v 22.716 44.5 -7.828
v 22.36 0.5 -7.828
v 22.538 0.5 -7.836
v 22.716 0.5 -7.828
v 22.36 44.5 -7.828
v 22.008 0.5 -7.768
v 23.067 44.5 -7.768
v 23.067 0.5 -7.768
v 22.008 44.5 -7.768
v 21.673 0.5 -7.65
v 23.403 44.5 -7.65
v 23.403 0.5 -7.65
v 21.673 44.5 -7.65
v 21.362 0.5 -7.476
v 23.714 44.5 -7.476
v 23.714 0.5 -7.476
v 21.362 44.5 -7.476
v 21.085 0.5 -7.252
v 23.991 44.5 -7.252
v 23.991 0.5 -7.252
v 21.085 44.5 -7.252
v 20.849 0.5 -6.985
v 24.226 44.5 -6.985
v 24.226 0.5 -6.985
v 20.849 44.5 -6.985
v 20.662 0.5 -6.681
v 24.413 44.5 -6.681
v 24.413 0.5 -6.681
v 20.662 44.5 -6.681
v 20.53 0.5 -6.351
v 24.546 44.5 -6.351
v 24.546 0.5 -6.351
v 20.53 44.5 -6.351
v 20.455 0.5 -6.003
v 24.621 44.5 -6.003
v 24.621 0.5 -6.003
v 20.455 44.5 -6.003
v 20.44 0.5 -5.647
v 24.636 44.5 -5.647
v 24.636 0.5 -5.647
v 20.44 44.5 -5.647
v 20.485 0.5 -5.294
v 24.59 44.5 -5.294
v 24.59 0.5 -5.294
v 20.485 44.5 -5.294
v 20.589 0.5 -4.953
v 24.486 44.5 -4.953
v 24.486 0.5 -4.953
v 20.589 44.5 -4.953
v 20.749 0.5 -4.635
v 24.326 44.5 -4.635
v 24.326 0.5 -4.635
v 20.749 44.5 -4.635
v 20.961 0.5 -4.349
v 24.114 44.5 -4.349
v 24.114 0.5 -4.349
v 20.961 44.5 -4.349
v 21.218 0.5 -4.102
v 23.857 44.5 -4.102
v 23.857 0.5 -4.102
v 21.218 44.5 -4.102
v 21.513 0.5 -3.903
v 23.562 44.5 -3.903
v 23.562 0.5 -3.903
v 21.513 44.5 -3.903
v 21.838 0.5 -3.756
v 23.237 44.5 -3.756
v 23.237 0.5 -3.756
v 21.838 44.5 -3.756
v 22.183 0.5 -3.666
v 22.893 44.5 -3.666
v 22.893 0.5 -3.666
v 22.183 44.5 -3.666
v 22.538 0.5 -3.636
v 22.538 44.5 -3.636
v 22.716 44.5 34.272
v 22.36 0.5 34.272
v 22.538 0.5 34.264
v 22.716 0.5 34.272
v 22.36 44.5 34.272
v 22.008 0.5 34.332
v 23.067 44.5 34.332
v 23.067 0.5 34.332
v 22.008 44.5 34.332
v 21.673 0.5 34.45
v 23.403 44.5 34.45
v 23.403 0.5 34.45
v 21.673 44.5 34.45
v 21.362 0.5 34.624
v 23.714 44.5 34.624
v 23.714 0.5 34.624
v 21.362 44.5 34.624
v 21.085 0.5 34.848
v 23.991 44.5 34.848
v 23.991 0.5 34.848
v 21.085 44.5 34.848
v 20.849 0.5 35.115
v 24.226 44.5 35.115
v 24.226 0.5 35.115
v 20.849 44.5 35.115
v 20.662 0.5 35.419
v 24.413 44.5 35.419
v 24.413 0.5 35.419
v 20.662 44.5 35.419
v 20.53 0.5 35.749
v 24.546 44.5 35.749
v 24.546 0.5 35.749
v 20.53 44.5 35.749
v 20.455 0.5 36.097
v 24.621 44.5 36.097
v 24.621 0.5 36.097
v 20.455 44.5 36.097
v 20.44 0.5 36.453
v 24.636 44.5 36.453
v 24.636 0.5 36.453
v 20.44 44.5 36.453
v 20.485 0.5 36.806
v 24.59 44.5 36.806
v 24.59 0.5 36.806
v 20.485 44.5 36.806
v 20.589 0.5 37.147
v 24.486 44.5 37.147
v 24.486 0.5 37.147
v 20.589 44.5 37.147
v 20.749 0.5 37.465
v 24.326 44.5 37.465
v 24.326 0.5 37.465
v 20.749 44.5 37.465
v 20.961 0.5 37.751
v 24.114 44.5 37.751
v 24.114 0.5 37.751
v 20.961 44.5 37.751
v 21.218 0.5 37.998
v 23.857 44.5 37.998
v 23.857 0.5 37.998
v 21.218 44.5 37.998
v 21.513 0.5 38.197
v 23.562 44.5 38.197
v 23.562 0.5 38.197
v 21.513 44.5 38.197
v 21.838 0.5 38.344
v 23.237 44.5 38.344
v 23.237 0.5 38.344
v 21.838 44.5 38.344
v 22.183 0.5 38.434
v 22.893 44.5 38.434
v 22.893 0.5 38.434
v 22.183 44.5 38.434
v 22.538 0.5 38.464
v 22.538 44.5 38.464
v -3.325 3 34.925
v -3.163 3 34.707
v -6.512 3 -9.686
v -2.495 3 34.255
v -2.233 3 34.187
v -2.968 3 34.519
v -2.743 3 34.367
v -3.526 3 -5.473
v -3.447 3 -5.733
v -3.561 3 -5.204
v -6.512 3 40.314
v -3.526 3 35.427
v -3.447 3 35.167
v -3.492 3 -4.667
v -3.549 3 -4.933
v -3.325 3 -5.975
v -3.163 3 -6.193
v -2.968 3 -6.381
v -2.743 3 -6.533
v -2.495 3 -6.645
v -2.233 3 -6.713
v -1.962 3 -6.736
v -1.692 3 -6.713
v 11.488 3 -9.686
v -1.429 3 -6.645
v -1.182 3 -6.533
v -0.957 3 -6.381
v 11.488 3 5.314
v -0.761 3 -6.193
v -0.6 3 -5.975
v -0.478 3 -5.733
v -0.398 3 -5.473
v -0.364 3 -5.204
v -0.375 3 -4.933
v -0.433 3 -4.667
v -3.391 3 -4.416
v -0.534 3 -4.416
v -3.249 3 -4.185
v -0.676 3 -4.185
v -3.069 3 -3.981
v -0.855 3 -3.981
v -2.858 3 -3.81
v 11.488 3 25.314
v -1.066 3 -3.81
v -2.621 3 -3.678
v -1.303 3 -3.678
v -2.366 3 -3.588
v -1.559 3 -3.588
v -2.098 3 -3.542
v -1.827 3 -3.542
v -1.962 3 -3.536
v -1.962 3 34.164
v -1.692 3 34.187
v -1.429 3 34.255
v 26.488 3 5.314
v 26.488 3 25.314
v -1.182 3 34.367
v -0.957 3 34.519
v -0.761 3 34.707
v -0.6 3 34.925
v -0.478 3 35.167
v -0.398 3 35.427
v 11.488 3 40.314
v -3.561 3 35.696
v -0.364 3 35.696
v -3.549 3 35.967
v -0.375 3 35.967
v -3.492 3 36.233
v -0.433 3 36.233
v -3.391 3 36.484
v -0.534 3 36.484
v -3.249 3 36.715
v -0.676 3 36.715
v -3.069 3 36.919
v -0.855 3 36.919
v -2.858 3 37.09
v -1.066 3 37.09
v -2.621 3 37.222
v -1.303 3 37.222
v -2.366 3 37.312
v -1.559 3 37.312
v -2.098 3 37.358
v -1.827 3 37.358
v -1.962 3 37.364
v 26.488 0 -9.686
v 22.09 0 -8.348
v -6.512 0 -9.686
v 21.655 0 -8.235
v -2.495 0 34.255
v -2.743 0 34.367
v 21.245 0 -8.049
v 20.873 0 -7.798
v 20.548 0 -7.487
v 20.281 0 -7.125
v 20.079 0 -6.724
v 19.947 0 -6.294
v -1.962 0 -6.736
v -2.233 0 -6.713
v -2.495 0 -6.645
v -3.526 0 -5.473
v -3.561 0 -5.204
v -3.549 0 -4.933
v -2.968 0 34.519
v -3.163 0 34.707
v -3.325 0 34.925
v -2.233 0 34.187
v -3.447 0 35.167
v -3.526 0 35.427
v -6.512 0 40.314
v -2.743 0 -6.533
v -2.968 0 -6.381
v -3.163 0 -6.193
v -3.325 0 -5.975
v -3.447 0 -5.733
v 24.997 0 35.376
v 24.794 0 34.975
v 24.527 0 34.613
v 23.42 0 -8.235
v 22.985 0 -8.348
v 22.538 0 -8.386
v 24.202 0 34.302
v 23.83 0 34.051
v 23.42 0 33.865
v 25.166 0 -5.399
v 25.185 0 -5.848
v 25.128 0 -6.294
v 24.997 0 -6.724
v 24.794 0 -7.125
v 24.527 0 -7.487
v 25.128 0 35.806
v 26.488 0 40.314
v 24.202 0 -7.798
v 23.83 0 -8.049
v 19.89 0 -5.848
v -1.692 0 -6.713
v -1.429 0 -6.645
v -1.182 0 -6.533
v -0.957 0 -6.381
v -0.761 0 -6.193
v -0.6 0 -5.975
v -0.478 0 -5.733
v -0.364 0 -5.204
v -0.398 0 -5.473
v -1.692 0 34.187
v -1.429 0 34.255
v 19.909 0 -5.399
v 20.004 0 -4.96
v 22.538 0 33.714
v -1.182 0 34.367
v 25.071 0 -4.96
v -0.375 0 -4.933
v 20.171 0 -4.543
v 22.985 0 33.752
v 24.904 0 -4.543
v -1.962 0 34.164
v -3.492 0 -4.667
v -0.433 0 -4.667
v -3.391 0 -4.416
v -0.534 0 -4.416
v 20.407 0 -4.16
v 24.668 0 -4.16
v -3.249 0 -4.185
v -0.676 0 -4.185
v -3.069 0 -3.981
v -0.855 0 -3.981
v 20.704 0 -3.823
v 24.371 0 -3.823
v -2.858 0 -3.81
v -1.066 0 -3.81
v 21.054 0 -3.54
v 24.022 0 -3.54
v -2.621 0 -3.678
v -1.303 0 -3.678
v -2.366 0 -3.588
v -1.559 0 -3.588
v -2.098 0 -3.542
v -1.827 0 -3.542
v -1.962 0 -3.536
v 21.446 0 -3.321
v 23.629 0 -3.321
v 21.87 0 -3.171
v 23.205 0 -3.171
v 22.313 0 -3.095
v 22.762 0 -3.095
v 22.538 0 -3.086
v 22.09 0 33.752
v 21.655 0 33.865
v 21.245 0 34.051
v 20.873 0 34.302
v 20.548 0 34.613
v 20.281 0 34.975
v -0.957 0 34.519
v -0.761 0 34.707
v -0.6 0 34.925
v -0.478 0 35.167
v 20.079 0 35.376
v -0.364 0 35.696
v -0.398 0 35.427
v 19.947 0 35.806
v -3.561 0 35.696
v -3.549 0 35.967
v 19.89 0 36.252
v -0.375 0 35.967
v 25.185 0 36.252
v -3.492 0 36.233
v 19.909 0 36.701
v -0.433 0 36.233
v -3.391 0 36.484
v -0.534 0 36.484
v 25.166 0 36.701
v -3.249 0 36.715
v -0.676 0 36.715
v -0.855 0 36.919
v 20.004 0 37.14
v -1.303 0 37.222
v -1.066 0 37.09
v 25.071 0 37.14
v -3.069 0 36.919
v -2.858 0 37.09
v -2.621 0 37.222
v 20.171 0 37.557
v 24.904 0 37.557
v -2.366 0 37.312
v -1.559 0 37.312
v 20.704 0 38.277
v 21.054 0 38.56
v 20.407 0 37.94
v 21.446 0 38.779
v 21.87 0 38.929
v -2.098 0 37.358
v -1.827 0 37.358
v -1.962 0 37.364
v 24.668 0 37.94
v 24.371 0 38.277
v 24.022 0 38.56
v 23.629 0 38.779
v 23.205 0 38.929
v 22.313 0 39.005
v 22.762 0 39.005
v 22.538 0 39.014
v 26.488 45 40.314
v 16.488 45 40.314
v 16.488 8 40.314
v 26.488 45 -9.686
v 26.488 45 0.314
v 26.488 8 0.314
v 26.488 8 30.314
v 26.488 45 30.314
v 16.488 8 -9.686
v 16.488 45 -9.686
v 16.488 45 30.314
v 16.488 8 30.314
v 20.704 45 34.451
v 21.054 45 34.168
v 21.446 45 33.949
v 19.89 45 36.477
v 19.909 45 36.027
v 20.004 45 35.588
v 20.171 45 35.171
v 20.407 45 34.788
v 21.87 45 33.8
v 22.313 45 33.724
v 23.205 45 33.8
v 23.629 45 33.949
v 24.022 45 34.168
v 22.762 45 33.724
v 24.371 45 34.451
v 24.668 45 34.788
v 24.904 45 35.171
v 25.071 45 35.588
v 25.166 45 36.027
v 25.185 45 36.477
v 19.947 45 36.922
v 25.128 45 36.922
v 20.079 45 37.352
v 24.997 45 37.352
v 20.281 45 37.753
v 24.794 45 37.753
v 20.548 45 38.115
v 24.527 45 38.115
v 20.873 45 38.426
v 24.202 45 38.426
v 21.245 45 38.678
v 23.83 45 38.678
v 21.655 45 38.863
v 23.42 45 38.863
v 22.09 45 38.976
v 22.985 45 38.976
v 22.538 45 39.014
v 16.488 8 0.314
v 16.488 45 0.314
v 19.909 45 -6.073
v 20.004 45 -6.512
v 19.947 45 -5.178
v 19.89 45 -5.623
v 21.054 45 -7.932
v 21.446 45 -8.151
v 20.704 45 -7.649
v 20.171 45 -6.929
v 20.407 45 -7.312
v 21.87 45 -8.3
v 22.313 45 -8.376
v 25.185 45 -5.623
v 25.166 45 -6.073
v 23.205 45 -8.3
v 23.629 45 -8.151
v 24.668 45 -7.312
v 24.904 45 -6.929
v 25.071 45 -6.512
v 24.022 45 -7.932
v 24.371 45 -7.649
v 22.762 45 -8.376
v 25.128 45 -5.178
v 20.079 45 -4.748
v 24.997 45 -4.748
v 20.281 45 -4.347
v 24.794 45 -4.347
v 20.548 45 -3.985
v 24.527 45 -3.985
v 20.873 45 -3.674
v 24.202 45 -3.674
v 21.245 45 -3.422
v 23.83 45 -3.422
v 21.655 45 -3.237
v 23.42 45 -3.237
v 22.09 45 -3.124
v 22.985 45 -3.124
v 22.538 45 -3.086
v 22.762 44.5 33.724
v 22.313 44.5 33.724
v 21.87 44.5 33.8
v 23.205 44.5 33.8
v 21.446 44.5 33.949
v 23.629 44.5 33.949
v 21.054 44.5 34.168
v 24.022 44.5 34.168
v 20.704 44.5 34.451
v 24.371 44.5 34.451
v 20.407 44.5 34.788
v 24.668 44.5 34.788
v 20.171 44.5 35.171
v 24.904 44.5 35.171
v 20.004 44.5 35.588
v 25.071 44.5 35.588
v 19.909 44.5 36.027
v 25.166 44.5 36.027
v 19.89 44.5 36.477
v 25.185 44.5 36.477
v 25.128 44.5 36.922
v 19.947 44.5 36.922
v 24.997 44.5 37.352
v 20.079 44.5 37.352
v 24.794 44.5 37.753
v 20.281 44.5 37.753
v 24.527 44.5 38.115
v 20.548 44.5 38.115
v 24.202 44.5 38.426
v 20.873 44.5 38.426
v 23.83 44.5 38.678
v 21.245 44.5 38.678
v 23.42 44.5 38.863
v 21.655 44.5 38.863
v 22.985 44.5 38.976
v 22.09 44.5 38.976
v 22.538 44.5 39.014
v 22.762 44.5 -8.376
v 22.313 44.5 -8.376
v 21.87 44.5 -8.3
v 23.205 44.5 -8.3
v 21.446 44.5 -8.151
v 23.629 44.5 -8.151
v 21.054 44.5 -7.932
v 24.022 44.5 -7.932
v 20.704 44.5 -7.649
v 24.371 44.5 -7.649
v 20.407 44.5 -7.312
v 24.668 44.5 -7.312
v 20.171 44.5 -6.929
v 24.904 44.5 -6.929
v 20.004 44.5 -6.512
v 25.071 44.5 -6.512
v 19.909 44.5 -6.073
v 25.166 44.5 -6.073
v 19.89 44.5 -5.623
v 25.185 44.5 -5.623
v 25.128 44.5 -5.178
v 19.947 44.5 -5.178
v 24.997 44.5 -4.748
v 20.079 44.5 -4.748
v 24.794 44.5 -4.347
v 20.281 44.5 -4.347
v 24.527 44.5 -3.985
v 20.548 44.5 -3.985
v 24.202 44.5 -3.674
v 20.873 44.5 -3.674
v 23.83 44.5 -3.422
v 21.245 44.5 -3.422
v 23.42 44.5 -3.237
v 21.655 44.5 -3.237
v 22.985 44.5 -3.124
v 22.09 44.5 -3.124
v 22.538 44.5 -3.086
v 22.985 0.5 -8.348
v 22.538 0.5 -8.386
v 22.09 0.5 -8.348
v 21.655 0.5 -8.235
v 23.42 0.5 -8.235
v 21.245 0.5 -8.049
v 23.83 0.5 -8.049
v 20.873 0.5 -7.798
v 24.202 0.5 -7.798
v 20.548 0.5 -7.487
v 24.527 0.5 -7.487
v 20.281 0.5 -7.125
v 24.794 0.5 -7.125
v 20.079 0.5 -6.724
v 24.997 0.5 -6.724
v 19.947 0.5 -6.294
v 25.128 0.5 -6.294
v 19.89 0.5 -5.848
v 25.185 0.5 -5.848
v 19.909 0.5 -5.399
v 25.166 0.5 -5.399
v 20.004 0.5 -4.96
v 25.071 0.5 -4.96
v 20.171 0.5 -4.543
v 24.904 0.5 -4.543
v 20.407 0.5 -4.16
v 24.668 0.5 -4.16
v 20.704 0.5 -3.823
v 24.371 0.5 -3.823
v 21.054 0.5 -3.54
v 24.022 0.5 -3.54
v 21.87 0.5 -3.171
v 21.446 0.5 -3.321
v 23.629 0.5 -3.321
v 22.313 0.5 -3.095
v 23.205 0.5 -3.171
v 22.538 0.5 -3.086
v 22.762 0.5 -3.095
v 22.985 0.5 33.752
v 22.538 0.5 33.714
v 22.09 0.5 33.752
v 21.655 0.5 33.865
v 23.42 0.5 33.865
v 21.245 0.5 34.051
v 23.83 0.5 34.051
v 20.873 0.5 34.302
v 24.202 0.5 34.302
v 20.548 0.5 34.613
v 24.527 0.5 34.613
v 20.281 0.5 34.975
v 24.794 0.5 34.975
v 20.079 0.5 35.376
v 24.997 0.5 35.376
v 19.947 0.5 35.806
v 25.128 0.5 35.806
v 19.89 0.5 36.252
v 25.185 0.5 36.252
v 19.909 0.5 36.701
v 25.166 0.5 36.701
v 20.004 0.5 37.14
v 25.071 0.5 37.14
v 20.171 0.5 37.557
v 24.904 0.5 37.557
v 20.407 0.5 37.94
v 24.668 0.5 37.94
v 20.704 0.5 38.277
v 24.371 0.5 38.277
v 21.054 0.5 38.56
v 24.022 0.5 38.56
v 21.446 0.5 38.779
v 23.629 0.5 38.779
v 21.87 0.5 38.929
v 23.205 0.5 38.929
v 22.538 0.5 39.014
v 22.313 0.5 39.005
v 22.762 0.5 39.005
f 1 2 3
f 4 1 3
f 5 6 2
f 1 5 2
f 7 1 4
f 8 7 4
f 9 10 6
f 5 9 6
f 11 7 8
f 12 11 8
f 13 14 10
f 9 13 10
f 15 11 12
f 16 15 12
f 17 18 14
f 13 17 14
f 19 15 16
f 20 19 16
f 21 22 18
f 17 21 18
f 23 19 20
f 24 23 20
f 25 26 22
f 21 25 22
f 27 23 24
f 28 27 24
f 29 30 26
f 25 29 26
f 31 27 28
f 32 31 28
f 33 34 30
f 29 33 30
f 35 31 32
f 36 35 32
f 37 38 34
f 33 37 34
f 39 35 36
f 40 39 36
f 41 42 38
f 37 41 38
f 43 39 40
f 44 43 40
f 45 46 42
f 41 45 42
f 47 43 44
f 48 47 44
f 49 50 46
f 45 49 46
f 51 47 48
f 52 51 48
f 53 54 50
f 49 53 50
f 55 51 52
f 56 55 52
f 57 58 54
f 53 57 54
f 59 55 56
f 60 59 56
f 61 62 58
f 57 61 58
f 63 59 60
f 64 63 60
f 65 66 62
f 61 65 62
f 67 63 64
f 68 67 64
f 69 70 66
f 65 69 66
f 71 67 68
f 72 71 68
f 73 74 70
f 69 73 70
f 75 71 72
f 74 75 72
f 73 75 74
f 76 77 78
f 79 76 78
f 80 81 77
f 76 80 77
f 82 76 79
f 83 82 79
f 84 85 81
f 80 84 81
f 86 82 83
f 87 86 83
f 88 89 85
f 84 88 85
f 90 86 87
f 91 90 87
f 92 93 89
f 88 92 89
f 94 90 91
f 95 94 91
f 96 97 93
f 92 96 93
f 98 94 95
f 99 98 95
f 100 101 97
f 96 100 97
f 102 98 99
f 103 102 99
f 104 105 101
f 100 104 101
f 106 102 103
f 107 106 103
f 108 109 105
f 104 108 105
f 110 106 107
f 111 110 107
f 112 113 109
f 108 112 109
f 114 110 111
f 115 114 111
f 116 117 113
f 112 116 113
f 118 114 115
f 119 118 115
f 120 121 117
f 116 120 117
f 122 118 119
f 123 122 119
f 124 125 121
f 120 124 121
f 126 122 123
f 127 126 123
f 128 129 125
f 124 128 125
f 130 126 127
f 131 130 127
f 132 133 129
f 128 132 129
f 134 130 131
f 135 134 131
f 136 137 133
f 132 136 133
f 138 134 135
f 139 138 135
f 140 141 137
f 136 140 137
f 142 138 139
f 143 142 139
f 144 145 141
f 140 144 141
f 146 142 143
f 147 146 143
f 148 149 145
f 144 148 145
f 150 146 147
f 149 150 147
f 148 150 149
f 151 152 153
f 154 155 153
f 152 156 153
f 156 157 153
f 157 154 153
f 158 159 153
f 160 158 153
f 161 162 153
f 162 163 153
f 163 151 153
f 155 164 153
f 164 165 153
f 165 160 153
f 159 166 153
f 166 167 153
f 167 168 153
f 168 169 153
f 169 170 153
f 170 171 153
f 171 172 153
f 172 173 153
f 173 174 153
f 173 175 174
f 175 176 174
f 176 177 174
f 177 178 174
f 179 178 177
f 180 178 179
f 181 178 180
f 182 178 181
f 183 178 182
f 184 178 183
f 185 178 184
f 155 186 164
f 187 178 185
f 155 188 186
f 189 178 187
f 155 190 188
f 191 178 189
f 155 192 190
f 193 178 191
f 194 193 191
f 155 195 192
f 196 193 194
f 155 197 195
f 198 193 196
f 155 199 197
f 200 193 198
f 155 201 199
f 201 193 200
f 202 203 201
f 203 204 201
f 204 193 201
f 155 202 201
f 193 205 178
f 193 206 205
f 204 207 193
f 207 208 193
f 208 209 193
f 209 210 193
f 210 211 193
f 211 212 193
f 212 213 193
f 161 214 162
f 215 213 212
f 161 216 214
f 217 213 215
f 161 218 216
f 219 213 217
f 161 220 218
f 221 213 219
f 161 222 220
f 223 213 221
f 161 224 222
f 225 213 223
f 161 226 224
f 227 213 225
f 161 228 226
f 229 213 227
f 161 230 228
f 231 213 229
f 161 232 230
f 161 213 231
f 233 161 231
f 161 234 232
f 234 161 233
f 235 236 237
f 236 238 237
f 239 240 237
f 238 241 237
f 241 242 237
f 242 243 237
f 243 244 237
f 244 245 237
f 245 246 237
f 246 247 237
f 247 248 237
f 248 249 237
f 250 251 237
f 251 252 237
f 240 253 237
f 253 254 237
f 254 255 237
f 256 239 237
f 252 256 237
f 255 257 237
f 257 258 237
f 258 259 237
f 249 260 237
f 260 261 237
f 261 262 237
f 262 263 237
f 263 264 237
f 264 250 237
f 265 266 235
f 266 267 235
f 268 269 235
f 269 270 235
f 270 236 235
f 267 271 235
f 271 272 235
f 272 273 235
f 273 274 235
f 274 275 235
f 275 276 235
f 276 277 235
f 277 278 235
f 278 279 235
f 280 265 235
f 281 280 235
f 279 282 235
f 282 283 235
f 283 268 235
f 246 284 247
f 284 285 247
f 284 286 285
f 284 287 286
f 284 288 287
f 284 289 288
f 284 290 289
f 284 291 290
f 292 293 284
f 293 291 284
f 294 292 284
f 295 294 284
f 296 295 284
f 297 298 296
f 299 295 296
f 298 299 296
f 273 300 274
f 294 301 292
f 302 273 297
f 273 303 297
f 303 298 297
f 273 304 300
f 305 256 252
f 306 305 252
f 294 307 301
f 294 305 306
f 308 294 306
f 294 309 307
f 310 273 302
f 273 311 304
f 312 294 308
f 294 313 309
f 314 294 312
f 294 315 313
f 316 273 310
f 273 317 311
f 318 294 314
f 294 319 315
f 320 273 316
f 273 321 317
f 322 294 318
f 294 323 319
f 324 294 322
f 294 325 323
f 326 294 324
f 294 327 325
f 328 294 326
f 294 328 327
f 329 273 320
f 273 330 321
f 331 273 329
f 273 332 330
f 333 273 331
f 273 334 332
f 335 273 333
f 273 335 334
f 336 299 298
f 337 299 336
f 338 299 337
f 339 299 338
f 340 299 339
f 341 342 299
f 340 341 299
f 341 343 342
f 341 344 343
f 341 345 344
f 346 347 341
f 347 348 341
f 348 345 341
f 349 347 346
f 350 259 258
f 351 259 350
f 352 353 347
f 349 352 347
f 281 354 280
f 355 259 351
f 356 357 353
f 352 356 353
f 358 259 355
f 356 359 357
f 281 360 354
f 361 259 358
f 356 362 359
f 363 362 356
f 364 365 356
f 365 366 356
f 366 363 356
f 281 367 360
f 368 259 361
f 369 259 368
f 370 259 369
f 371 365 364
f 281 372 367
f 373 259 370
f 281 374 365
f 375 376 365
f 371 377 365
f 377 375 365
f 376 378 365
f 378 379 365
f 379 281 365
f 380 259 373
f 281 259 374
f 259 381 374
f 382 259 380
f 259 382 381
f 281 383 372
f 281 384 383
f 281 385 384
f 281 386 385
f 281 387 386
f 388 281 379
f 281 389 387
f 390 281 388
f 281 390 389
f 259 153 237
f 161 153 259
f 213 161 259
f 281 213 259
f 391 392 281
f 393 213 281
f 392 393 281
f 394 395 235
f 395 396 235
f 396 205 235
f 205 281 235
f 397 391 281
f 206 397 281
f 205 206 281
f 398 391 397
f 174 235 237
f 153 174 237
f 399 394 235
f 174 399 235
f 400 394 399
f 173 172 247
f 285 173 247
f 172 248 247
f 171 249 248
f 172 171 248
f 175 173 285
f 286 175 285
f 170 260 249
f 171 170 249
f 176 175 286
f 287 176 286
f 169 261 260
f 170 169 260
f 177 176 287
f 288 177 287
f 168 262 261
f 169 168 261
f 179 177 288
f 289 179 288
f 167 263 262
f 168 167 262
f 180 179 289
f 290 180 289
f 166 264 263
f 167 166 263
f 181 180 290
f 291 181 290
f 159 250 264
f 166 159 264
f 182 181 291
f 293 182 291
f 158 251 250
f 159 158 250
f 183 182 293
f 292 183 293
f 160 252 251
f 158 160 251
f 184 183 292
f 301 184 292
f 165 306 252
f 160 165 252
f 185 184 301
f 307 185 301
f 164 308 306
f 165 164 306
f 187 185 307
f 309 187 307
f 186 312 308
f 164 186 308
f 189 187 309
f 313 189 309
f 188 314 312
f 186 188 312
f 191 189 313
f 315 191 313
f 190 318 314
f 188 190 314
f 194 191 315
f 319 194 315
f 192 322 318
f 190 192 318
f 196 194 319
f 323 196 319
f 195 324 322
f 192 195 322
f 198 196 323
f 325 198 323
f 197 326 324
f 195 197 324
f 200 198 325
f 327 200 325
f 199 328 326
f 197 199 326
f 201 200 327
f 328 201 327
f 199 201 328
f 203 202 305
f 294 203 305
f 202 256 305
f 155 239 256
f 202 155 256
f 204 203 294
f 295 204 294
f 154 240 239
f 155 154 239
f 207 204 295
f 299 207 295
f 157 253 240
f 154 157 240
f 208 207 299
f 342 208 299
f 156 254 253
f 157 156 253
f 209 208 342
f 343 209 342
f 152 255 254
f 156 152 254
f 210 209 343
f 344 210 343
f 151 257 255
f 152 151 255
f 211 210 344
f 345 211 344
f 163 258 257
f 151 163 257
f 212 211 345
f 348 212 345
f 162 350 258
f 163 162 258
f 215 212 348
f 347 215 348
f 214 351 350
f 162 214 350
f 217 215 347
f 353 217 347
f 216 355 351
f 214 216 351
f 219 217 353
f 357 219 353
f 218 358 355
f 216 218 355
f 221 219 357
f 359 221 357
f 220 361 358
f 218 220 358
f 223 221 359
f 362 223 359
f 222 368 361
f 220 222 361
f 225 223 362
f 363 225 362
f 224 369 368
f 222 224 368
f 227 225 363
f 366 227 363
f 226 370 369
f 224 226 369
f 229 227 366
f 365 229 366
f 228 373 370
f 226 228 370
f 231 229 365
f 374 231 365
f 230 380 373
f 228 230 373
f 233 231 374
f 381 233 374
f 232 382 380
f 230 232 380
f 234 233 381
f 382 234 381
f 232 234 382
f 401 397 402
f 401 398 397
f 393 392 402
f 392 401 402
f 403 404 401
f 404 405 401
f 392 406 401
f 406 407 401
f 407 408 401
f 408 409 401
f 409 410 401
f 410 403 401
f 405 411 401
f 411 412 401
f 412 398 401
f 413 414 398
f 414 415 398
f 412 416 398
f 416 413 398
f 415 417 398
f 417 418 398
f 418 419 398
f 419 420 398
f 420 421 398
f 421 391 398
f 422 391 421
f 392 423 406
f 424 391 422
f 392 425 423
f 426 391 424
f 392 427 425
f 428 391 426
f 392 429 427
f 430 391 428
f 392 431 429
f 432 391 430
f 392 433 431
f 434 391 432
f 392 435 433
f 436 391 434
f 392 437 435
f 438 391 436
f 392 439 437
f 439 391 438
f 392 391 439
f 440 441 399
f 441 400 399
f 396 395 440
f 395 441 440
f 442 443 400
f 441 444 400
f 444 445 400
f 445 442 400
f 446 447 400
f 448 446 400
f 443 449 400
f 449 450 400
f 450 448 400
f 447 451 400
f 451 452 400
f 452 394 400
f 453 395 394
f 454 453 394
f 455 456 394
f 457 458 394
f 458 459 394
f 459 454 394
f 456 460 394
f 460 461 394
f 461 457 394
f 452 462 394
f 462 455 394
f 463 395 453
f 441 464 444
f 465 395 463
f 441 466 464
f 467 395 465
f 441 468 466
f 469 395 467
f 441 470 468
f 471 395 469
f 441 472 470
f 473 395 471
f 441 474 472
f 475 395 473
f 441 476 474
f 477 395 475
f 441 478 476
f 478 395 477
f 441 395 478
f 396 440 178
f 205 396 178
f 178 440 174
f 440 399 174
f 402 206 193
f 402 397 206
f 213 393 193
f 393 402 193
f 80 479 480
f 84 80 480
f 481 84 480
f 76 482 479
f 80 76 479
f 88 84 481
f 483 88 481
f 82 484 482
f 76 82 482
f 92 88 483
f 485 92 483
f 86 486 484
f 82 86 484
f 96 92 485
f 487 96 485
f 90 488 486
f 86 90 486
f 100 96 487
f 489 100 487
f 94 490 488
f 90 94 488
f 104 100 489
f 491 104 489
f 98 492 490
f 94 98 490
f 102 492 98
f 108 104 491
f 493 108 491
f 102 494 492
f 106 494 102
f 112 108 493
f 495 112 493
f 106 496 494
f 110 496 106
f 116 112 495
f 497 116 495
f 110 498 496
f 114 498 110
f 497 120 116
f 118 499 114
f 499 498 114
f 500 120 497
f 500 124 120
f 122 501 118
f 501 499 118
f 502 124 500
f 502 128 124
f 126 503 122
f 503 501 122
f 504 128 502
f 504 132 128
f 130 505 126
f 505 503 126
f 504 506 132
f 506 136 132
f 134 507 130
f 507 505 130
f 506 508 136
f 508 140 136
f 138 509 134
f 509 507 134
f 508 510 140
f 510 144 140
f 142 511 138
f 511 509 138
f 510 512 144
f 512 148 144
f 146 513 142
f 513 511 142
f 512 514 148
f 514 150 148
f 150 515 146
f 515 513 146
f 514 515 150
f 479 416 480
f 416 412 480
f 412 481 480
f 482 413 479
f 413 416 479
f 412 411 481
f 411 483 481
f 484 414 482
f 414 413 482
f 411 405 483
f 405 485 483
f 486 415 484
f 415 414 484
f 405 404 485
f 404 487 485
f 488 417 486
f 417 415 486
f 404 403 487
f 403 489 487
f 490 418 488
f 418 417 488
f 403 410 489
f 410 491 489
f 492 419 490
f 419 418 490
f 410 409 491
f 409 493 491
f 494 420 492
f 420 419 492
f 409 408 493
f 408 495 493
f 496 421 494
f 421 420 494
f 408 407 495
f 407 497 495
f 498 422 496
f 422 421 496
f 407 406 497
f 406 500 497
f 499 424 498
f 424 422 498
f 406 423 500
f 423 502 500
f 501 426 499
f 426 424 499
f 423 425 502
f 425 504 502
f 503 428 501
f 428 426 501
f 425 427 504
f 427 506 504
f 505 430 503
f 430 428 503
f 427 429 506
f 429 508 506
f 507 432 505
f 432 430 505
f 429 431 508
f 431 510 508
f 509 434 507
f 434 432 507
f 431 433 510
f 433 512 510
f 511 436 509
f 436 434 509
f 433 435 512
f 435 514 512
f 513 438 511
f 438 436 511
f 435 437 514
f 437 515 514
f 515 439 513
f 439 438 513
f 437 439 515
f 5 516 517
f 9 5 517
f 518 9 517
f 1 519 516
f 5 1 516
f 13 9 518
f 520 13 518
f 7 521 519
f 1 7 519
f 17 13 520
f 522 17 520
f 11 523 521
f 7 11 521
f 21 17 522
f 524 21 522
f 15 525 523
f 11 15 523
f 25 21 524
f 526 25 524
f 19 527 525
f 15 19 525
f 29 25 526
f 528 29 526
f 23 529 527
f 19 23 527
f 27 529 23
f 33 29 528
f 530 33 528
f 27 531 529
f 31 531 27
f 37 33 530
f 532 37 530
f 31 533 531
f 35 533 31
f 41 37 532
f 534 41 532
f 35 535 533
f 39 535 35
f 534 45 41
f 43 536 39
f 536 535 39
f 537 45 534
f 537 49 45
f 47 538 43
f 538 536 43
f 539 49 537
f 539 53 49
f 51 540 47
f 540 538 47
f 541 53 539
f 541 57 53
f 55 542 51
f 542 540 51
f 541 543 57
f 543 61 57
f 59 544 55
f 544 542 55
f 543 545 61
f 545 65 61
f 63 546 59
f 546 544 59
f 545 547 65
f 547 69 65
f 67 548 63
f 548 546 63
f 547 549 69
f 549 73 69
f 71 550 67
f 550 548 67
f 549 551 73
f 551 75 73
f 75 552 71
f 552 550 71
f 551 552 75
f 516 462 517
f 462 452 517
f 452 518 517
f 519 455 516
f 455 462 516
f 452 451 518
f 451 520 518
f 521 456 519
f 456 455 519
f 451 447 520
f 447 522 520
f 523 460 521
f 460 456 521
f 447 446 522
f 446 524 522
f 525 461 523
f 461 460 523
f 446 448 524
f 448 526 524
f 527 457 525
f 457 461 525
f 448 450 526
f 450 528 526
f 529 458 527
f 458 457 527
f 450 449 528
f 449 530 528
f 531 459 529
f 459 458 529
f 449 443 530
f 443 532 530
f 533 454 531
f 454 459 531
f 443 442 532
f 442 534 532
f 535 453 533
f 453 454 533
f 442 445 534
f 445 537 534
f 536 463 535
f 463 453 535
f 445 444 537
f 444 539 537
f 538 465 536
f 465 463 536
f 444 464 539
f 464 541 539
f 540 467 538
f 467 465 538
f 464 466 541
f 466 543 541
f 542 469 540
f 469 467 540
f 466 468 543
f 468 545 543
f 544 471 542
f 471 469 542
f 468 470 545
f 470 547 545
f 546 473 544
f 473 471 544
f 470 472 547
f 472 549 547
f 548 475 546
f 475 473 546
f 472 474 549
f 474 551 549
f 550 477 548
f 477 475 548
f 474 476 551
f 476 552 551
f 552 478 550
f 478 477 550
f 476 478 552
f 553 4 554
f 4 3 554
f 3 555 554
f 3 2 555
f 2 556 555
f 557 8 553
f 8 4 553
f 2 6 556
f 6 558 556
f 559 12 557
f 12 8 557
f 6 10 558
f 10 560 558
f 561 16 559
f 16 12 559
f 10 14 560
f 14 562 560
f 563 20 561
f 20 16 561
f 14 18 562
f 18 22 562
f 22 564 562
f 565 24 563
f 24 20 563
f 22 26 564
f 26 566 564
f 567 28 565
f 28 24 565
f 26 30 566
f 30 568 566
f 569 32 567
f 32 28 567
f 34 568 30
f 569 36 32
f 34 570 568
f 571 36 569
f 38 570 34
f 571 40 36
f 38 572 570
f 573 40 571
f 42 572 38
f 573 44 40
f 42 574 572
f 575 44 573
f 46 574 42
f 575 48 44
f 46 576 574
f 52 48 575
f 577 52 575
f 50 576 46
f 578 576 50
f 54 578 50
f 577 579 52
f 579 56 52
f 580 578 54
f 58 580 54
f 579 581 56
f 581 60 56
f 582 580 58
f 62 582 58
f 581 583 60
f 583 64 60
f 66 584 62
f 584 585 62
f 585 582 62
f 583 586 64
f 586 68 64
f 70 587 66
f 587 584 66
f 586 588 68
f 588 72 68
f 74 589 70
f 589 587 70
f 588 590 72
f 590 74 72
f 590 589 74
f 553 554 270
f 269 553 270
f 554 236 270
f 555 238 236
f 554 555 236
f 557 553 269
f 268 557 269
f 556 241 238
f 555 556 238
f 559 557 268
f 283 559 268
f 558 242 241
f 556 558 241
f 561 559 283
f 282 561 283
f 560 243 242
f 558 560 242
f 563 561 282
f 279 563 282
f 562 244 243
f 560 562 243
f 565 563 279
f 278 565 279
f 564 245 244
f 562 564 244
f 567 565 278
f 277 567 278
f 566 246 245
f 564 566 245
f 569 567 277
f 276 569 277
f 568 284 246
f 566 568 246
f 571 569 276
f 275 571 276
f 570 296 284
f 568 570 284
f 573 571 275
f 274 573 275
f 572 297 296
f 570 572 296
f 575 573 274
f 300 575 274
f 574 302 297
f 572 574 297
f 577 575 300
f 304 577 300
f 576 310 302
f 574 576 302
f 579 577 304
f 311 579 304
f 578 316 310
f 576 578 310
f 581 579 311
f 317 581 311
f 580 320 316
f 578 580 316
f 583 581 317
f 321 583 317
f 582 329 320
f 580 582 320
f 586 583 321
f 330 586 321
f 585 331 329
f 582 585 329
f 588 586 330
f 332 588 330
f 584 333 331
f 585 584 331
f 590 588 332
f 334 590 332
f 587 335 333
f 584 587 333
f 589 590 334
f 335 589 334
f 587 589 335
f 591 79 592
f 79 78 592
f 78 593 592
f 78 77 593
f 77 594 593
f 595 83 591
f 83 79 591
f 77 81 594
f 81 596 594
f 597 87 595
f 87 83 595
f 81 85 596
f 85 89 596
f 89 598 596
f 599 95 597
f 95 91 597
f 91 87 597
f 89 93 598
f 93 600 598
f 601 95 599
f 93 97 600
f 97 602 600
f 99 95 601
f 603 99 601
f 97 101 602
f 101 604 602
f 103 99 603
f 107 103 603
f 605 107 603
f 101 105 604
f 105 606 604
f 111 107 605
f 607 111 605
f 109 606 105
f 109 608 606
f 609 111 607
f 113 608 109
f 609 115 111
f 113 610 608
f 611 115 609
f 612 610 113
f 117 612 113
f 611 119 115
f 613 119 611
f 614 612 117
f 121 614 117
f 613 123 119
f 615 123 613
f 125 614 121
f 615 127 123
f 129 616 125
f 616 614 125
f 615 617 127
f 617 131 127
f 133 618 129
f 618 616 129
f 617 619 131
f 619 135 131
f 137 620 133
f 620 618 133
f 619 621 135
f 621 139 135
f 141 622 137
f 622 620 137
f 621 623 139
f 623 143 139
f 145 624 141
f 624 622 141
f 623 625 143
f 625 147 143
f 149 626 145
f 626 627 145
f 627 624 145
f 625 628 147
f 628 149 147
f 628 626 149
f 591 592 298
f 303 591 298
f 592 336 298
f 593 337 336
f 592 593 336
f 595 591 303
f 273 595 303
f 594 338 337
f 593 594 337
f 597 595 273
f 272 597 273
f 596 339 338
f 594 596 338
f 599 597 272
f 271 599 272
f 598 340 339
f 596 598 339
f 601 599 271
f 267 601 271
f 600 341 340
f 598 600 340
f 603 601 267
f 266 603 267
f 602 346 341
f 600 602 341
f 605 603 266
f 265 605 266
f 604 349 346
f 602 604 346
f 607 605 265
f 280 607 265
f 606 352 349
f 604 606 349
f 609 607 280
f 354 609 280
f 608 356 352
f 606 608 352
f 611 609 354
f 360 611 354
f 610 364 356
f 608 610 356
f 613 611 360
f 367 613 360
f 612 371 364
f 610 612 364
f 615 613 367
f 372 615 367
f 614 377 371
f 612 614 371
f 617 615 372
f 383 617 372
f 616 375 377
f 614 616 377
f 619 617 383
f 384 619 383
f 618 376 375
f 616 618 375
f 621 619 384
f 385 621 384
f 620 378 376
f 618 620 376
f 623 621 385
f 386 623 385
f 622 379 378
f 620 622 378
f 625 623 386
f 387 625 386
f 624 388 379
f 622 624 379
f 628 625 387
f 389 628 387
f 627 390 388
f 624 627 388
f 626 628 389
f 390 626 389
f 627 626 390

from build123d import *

# Parameters (mm, degrees)
SKETCH1_R           = 1.6
BOSS_EXTRUDE1_DEPTH = 3
SKETCH2_W           = 10
SKETCH2_H           = 10
BOSS_EXTRUDE2_DEPTH = 42
CHAMFER1_SIZE       = 5
SKETCH3_R           = 2.1
CUT_EXTRUDE1_DEPTH  = 52
SKETCH4_R           = 2.65
CUT_EXTRUDE2_DEPTH  = 0.5


with BuildPart() as part:
    # Sketch1 → Boss-Extrude1 (new body)
    with BuildSketch(Plane(origin=(0, 0, 0), x_dir=(1, 0, 0), z_dir=(0, 1, 0))):
        Polygon((-6.512396694, 9.685950413), (1.487603306, 9.685950413), (26.487603306, 9.685950413), (26.487603306, -40.314049587), (1.487603306, -40.314049587), (-6.512396694, -40.314049587), align=None)
        with Locations(Location((-1.962396694, -35.764049587, 0), (0, 0, 270))):
            Circle(SKETCH1_R, mode=Mode.SUBTRACT)
        with Locations(Location((-1.962396694, 5.135950413, 0), (0, 0, 270))):
            Circle(SKETCH1_R, mode=Mode.SUBTRACT)
    extrude(amount=BOSS_EXTRUDE1_DEPTH)

    # Sketch2 → Boss-Extrude2 (add)
    with BuildSketch(Plane(origin=(0, 3, 0), x_dir=(1, 0, 0), z_dir=(0, 1, 0))):
        with Locations((21.487603306, -35.314049587)):
            Rectangle(SKETCH2_W, SKETCH2_H)
        with Locations((21.487603306, 4.685950413)):
            Rectangle(SKETCH2_W, SKETCH2_H)
    extrude(amount=BOSS_EXTRUDE2_DEPTH)

    # Chamfer1
    chamfer1_edges = [part.edges().sort_by_distance(p)[0] for p in [
        (21.487603306, 3, 30.314049587),
        (16.487603306, 3, 35.314049587),
        (16.487603306, 3, -4.685950413),
        (21.487603306, 3, 0.314049587),
    ]]
    chamfer(chamfer1_edges, length=CHAMFER1_SIZE)

    # Sketch3 → Cut-Extrude1 (cut)
    with BuildSketch(Plane(origin=(0, 45, 0), x_dir=(1, 0, 0), z_dir=(0, 1, 0))):
        with Locations(Location((22.537603306, -36.364049587, 0), (0, 0, 270))):
            Circle(SKETCH3_R)
        with Locations(Location((22.537603306, 5.735950413, 0), (0, 0, 270))):
            Circle(SKETCH3_R)
    extrude(amount=-CUT_EXTRUDE1_DEPTH, mode=Mode.SUBTRACT)

    # Sketch4 → Cut-Extrude2 (cut)
    with BuildSketch(Plane(origin=(0, 45, 0), x_dir=(1, 0, 0), z_dir=(0, 1, 0))):
        with Locations(Location((22.537603306, -36.364049587, 0), (0, 0, 270))):
            Circle(SKETCH4_R)
        with Locations(Location((22.537603306, 5.735950413, 0), (0, 0, 270))):
            Circle(SKETCH4_R)
    cut_extrude2 = extrude(amount=-CUT_EXTRUDE2_DEPTH, mode=Mode.SUBTRACT)

    # Mirror1: Cut-Extrude2 across plane
    add(cut_extrude2.mirror(Plane(origin=(0, 22.5, 0), x_dir=(0, 0, 1), z_dir=(0, -1, 0))), mode=Mode.SUBTRACT)


solid = part.part
